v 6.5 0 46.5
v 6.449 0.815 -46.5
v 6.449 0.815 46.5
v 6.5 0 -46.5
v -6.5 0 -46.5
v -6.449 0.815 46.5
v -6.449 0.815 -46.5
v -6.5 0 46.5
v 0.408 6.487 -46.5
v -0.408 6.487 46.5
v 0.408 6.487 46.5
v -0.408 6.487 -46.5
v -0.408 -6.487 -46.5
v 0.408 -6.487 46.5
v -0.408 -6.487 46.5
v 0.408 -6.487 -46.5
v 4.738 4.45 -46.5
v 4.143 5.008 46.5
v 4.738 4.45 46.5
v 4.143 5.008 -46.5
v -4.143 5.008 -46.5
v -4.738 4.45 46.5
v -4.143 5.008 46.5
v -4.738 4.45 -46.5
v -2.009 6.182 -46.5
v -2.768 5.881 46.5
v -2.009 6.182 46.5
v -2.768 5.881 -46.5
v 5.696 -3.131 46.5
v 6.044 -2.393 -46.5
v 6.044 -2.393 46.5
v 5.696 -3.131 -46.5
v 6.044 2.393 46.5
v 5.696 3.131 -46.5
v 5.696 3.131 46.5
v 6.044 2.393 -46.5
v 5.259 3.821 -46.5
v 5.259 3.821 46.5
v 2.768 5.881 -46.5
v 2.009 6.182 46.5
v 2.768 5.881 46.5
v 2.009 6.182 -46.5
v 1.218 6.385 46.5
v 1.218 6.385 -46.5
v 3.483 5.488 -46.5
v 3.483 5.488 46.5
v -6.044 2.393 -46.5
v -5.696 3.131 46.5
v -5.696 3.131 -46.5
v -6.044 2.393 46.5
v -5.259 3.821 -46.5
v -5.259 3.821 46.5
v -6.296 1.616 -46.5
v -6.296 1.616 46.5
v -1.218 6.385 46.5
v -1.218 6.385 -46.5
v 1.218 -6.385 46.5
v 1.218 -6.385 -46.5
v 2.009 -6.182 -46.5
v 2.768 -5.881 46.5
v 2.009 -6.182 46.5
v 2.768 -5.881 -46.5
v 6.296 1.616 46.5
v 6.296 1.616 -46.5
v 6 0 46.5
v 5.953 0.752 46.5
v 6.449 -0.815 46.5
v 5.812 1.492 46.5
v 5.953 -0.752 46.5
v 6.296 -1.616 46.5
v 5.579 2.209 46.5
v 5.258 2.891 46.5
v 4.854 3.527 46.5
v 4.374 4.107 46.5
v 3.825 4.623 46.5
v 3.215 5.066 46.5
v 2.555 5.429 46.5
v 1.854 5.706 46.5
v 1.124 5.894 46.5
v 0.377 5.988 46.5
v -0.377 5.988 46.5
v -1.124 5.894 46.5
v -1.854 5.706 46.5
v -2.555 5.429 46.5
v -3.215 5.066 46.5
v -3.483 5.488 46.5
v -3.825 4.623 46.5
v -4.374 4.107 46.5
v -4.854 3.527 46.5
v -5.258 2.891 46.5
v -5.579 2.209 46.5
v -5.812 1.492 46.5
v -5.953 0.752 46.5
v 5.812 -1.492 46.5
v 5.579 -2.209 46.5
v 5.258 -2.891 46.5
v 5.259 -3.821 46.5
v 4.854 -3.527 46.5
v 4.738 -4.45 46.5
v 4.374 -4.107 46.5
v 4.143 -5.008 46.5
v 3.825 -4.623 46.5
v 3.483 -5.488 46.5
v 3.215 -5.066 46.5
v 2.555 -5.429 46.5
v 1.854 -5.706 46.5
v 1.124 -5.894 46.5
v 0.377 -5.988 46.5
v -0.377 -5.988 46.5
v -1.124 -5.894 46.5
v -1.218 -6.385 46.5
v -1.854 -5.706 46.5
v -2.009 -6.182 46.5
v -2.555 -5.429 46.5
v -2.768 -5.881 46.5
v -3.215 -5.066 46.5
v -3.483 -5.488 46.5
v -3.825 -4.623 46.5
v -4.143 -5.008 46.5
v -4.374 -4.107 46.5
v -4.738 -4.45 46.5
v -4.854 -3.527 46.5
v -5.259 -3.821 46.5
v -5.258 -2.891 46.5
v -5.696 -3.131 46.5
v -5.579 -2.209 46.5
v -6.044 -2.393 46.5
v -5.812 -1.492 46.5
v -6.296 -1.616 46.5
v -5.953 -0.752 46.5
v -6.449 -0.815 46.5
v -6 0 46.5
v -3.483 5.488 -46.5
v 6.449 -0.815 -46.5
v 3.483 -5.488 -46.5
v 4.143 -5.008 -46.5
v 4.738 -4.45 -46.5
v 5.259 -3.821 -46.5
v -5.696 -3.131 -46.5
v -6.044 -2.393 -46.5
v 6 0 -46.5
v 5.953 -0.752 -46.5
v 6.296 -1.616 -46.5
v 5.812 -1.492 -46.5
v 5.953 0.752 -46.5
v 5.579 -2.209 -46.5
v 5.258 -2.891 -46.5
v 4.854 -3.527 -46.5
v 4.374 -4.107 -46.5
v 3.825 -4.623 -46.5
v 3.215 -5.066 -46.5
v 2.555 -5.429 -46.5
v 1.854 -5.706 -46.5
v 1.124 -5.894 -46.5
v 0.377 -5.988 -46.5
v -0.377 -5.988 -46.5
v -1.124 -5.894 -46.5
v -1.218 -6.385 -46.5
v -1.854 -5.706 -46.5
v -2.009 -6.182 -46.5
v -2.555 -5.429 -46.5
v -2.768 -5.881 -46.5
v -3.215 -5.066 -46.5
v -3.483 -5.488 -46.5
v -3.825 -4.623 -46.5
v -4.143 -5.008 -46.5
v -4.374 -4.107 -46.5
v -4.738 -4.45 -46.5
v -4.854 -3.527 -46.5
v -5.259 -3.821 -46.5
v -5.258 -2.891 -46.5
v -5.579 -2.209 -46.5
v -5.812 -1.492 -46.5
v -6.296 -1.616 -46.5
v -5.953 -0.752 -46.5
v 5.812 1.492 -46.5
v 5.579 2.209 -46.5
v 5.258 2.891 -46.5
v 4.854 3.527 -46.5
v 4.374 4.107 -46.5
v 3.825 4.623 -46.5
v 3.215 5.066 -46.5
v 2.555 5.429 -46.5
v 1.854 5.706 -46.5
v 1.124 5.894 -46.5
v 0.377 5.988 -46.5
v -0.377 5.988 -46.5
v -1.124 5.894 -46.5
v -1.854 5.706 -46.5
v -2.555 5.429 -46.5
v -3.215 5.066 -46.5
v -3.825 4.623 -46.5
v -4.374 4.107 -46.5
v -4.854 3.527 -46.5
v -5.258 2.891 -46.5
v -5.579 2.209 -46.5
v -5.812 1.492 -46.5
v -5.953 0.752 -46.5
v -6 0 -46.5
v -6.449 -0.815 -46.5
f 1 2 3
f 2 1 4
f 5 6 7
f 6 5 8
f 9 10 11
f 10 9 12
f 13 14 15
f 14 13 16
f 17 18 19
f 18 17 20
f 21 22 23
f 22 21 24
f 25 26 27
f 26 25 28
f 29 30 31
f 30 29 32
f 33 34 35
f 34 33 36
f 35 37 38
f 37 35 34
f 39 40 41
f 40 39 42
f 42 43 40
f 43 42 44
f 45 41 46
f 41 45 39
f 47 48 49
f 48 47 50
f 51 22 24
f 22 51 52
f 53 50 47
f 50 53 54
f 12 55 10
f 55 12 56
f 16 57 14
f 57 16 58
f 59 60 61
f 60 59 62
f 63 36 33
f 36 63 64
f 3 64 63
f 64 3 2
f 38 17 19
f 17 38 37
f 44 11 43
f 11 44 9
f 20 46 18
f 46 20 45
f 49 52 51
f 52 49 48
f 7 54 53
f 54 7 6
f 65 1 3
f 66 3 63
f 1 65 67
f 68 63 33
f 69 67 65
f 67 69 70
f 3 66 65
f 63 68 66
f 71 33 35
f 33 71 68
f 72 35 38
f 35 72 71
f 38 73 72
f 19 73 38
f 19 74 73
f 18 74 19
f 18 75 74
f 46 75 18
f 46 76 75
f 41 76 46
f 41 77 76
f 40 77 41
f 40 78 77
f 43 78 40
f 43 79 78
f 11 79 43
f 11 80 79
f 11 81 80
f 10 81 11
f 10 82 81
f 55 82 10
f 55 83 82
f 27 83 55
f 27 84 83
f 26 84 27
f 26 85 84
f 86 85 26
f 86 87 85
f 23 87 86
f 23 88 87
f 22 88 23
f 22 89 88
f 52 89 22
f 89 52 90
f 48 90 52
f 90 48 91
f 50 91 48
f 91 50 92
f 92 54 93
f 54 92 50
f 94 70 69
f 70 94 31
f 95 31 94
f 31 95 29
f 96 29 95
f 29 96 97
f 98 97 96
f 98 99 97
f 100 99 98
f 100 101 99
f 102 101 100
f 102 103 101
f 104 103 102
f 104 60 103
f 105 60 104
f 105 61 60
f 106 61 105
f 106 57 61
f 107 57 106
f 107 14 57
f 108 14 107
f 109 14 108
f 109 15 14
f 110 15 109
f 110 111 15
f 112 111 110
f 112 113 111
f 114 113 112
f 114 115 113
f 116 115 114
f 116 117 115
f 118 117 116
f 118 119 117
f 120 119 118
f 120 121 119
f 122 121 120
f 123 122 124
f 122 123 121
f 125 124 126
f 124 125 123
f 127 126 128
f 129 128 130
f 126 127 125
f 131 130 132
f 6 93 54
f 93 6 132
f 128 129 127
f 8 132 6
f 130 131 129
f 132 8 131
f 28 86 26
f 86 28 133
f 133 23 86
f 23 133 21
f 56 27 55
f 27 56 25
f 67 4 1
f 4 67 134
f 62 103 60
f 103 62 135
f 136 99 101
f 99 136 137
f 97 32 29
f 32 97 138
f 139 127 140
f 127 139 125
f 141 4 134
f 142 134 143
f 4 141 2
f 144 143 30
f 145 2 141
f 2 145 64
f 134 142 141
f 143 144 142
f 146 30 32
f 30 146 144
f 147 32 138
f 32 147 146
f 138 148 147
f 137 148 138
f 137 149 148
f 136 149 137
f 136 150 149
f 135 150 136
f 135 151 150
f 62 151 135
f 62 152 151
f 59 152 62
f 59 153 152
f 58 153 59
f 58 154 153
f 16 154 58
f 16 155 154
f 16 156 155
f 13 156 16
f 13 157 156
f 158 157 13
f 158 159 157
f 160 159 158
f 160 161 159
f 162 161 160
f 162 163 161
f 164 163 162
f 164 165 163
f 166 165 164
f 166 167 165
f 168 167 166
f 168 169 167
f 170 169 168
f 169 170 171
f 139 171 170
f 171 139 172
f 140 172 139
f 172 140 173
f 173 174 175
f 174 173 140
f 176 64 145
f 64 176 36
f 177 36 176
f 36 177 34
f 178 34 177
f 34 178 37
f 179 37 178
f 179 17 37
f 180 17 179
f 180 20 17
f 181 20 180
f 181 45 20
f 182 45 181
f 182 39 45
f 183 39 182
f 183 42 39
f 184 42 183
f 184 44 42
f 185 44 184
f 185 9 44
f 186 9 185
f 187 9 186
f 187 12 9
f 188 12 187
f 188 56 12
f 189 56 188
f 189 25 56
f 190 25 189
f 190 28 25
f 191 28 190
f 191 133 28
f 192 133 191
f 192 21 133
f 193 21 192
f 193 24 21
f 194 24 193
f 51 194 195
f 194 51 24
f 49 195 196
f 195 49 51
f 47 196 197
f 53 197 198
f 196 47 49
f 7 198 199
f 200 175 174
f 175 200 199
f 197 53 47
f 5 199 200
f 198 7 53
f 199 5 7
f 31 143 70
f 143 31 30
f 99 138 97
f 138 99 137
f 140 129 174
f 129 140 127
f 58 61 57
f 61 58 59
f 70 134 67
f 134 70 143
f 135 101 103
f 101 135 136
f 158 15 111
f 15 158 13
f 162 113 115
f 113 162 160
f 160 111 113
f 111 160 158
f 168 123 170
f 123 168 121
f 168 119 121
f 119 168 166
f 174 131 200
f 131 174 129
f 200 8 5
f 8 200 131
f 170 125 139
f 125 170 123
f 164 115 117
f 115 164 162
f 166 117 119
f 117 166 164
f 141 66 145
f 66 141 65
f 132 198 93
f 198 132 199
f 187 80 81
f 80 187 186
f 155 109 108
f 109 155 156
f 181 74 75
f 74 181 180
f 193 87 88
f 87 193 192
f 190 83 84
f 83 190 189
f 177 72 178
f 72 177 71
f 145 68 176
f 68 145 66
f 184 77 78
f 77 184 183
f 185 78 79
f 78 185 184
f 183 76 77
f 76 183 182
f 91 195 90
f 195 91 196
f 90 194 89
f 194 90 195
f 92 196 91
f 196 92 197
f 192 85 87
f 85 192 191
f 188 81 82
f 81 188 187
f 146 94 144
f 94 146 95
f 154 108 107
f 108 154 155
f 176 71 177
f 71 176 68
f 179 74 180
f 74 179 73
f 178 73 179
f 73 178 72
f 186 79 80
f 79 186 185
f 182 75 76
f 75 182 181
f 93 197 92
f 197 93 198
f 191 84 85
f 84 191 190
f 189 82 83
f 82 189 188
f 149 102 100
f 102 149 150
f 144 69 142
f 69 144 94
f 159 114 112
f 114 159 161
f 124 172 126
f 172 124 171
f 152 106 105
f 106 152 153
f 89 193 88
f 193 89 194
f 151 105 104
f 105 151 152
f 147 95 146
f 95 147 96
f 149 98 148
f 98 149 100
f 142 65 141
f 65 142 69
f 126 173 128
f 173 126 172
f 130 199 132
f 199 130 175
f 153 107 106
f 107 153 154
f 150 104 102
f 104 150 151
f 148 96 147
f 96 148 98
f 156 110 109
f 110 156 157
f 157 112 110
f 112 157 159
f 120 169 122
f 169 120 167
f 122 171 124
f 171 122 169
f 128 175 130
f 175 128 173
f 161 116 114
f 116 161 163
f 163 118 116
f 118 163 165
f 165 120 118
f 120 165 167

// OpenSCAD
$fn = 50;


difference() {
	union() {
		translate(v = [0, 0, -46.5000000000]) {
			cylinder(h = 93, r = 6.5000000000);
		}
	}
	union() {
		translate(v = [0, 0, -100.0000000000]) {
			cylinder(h = 200, r = 6);
		}
	}
}
